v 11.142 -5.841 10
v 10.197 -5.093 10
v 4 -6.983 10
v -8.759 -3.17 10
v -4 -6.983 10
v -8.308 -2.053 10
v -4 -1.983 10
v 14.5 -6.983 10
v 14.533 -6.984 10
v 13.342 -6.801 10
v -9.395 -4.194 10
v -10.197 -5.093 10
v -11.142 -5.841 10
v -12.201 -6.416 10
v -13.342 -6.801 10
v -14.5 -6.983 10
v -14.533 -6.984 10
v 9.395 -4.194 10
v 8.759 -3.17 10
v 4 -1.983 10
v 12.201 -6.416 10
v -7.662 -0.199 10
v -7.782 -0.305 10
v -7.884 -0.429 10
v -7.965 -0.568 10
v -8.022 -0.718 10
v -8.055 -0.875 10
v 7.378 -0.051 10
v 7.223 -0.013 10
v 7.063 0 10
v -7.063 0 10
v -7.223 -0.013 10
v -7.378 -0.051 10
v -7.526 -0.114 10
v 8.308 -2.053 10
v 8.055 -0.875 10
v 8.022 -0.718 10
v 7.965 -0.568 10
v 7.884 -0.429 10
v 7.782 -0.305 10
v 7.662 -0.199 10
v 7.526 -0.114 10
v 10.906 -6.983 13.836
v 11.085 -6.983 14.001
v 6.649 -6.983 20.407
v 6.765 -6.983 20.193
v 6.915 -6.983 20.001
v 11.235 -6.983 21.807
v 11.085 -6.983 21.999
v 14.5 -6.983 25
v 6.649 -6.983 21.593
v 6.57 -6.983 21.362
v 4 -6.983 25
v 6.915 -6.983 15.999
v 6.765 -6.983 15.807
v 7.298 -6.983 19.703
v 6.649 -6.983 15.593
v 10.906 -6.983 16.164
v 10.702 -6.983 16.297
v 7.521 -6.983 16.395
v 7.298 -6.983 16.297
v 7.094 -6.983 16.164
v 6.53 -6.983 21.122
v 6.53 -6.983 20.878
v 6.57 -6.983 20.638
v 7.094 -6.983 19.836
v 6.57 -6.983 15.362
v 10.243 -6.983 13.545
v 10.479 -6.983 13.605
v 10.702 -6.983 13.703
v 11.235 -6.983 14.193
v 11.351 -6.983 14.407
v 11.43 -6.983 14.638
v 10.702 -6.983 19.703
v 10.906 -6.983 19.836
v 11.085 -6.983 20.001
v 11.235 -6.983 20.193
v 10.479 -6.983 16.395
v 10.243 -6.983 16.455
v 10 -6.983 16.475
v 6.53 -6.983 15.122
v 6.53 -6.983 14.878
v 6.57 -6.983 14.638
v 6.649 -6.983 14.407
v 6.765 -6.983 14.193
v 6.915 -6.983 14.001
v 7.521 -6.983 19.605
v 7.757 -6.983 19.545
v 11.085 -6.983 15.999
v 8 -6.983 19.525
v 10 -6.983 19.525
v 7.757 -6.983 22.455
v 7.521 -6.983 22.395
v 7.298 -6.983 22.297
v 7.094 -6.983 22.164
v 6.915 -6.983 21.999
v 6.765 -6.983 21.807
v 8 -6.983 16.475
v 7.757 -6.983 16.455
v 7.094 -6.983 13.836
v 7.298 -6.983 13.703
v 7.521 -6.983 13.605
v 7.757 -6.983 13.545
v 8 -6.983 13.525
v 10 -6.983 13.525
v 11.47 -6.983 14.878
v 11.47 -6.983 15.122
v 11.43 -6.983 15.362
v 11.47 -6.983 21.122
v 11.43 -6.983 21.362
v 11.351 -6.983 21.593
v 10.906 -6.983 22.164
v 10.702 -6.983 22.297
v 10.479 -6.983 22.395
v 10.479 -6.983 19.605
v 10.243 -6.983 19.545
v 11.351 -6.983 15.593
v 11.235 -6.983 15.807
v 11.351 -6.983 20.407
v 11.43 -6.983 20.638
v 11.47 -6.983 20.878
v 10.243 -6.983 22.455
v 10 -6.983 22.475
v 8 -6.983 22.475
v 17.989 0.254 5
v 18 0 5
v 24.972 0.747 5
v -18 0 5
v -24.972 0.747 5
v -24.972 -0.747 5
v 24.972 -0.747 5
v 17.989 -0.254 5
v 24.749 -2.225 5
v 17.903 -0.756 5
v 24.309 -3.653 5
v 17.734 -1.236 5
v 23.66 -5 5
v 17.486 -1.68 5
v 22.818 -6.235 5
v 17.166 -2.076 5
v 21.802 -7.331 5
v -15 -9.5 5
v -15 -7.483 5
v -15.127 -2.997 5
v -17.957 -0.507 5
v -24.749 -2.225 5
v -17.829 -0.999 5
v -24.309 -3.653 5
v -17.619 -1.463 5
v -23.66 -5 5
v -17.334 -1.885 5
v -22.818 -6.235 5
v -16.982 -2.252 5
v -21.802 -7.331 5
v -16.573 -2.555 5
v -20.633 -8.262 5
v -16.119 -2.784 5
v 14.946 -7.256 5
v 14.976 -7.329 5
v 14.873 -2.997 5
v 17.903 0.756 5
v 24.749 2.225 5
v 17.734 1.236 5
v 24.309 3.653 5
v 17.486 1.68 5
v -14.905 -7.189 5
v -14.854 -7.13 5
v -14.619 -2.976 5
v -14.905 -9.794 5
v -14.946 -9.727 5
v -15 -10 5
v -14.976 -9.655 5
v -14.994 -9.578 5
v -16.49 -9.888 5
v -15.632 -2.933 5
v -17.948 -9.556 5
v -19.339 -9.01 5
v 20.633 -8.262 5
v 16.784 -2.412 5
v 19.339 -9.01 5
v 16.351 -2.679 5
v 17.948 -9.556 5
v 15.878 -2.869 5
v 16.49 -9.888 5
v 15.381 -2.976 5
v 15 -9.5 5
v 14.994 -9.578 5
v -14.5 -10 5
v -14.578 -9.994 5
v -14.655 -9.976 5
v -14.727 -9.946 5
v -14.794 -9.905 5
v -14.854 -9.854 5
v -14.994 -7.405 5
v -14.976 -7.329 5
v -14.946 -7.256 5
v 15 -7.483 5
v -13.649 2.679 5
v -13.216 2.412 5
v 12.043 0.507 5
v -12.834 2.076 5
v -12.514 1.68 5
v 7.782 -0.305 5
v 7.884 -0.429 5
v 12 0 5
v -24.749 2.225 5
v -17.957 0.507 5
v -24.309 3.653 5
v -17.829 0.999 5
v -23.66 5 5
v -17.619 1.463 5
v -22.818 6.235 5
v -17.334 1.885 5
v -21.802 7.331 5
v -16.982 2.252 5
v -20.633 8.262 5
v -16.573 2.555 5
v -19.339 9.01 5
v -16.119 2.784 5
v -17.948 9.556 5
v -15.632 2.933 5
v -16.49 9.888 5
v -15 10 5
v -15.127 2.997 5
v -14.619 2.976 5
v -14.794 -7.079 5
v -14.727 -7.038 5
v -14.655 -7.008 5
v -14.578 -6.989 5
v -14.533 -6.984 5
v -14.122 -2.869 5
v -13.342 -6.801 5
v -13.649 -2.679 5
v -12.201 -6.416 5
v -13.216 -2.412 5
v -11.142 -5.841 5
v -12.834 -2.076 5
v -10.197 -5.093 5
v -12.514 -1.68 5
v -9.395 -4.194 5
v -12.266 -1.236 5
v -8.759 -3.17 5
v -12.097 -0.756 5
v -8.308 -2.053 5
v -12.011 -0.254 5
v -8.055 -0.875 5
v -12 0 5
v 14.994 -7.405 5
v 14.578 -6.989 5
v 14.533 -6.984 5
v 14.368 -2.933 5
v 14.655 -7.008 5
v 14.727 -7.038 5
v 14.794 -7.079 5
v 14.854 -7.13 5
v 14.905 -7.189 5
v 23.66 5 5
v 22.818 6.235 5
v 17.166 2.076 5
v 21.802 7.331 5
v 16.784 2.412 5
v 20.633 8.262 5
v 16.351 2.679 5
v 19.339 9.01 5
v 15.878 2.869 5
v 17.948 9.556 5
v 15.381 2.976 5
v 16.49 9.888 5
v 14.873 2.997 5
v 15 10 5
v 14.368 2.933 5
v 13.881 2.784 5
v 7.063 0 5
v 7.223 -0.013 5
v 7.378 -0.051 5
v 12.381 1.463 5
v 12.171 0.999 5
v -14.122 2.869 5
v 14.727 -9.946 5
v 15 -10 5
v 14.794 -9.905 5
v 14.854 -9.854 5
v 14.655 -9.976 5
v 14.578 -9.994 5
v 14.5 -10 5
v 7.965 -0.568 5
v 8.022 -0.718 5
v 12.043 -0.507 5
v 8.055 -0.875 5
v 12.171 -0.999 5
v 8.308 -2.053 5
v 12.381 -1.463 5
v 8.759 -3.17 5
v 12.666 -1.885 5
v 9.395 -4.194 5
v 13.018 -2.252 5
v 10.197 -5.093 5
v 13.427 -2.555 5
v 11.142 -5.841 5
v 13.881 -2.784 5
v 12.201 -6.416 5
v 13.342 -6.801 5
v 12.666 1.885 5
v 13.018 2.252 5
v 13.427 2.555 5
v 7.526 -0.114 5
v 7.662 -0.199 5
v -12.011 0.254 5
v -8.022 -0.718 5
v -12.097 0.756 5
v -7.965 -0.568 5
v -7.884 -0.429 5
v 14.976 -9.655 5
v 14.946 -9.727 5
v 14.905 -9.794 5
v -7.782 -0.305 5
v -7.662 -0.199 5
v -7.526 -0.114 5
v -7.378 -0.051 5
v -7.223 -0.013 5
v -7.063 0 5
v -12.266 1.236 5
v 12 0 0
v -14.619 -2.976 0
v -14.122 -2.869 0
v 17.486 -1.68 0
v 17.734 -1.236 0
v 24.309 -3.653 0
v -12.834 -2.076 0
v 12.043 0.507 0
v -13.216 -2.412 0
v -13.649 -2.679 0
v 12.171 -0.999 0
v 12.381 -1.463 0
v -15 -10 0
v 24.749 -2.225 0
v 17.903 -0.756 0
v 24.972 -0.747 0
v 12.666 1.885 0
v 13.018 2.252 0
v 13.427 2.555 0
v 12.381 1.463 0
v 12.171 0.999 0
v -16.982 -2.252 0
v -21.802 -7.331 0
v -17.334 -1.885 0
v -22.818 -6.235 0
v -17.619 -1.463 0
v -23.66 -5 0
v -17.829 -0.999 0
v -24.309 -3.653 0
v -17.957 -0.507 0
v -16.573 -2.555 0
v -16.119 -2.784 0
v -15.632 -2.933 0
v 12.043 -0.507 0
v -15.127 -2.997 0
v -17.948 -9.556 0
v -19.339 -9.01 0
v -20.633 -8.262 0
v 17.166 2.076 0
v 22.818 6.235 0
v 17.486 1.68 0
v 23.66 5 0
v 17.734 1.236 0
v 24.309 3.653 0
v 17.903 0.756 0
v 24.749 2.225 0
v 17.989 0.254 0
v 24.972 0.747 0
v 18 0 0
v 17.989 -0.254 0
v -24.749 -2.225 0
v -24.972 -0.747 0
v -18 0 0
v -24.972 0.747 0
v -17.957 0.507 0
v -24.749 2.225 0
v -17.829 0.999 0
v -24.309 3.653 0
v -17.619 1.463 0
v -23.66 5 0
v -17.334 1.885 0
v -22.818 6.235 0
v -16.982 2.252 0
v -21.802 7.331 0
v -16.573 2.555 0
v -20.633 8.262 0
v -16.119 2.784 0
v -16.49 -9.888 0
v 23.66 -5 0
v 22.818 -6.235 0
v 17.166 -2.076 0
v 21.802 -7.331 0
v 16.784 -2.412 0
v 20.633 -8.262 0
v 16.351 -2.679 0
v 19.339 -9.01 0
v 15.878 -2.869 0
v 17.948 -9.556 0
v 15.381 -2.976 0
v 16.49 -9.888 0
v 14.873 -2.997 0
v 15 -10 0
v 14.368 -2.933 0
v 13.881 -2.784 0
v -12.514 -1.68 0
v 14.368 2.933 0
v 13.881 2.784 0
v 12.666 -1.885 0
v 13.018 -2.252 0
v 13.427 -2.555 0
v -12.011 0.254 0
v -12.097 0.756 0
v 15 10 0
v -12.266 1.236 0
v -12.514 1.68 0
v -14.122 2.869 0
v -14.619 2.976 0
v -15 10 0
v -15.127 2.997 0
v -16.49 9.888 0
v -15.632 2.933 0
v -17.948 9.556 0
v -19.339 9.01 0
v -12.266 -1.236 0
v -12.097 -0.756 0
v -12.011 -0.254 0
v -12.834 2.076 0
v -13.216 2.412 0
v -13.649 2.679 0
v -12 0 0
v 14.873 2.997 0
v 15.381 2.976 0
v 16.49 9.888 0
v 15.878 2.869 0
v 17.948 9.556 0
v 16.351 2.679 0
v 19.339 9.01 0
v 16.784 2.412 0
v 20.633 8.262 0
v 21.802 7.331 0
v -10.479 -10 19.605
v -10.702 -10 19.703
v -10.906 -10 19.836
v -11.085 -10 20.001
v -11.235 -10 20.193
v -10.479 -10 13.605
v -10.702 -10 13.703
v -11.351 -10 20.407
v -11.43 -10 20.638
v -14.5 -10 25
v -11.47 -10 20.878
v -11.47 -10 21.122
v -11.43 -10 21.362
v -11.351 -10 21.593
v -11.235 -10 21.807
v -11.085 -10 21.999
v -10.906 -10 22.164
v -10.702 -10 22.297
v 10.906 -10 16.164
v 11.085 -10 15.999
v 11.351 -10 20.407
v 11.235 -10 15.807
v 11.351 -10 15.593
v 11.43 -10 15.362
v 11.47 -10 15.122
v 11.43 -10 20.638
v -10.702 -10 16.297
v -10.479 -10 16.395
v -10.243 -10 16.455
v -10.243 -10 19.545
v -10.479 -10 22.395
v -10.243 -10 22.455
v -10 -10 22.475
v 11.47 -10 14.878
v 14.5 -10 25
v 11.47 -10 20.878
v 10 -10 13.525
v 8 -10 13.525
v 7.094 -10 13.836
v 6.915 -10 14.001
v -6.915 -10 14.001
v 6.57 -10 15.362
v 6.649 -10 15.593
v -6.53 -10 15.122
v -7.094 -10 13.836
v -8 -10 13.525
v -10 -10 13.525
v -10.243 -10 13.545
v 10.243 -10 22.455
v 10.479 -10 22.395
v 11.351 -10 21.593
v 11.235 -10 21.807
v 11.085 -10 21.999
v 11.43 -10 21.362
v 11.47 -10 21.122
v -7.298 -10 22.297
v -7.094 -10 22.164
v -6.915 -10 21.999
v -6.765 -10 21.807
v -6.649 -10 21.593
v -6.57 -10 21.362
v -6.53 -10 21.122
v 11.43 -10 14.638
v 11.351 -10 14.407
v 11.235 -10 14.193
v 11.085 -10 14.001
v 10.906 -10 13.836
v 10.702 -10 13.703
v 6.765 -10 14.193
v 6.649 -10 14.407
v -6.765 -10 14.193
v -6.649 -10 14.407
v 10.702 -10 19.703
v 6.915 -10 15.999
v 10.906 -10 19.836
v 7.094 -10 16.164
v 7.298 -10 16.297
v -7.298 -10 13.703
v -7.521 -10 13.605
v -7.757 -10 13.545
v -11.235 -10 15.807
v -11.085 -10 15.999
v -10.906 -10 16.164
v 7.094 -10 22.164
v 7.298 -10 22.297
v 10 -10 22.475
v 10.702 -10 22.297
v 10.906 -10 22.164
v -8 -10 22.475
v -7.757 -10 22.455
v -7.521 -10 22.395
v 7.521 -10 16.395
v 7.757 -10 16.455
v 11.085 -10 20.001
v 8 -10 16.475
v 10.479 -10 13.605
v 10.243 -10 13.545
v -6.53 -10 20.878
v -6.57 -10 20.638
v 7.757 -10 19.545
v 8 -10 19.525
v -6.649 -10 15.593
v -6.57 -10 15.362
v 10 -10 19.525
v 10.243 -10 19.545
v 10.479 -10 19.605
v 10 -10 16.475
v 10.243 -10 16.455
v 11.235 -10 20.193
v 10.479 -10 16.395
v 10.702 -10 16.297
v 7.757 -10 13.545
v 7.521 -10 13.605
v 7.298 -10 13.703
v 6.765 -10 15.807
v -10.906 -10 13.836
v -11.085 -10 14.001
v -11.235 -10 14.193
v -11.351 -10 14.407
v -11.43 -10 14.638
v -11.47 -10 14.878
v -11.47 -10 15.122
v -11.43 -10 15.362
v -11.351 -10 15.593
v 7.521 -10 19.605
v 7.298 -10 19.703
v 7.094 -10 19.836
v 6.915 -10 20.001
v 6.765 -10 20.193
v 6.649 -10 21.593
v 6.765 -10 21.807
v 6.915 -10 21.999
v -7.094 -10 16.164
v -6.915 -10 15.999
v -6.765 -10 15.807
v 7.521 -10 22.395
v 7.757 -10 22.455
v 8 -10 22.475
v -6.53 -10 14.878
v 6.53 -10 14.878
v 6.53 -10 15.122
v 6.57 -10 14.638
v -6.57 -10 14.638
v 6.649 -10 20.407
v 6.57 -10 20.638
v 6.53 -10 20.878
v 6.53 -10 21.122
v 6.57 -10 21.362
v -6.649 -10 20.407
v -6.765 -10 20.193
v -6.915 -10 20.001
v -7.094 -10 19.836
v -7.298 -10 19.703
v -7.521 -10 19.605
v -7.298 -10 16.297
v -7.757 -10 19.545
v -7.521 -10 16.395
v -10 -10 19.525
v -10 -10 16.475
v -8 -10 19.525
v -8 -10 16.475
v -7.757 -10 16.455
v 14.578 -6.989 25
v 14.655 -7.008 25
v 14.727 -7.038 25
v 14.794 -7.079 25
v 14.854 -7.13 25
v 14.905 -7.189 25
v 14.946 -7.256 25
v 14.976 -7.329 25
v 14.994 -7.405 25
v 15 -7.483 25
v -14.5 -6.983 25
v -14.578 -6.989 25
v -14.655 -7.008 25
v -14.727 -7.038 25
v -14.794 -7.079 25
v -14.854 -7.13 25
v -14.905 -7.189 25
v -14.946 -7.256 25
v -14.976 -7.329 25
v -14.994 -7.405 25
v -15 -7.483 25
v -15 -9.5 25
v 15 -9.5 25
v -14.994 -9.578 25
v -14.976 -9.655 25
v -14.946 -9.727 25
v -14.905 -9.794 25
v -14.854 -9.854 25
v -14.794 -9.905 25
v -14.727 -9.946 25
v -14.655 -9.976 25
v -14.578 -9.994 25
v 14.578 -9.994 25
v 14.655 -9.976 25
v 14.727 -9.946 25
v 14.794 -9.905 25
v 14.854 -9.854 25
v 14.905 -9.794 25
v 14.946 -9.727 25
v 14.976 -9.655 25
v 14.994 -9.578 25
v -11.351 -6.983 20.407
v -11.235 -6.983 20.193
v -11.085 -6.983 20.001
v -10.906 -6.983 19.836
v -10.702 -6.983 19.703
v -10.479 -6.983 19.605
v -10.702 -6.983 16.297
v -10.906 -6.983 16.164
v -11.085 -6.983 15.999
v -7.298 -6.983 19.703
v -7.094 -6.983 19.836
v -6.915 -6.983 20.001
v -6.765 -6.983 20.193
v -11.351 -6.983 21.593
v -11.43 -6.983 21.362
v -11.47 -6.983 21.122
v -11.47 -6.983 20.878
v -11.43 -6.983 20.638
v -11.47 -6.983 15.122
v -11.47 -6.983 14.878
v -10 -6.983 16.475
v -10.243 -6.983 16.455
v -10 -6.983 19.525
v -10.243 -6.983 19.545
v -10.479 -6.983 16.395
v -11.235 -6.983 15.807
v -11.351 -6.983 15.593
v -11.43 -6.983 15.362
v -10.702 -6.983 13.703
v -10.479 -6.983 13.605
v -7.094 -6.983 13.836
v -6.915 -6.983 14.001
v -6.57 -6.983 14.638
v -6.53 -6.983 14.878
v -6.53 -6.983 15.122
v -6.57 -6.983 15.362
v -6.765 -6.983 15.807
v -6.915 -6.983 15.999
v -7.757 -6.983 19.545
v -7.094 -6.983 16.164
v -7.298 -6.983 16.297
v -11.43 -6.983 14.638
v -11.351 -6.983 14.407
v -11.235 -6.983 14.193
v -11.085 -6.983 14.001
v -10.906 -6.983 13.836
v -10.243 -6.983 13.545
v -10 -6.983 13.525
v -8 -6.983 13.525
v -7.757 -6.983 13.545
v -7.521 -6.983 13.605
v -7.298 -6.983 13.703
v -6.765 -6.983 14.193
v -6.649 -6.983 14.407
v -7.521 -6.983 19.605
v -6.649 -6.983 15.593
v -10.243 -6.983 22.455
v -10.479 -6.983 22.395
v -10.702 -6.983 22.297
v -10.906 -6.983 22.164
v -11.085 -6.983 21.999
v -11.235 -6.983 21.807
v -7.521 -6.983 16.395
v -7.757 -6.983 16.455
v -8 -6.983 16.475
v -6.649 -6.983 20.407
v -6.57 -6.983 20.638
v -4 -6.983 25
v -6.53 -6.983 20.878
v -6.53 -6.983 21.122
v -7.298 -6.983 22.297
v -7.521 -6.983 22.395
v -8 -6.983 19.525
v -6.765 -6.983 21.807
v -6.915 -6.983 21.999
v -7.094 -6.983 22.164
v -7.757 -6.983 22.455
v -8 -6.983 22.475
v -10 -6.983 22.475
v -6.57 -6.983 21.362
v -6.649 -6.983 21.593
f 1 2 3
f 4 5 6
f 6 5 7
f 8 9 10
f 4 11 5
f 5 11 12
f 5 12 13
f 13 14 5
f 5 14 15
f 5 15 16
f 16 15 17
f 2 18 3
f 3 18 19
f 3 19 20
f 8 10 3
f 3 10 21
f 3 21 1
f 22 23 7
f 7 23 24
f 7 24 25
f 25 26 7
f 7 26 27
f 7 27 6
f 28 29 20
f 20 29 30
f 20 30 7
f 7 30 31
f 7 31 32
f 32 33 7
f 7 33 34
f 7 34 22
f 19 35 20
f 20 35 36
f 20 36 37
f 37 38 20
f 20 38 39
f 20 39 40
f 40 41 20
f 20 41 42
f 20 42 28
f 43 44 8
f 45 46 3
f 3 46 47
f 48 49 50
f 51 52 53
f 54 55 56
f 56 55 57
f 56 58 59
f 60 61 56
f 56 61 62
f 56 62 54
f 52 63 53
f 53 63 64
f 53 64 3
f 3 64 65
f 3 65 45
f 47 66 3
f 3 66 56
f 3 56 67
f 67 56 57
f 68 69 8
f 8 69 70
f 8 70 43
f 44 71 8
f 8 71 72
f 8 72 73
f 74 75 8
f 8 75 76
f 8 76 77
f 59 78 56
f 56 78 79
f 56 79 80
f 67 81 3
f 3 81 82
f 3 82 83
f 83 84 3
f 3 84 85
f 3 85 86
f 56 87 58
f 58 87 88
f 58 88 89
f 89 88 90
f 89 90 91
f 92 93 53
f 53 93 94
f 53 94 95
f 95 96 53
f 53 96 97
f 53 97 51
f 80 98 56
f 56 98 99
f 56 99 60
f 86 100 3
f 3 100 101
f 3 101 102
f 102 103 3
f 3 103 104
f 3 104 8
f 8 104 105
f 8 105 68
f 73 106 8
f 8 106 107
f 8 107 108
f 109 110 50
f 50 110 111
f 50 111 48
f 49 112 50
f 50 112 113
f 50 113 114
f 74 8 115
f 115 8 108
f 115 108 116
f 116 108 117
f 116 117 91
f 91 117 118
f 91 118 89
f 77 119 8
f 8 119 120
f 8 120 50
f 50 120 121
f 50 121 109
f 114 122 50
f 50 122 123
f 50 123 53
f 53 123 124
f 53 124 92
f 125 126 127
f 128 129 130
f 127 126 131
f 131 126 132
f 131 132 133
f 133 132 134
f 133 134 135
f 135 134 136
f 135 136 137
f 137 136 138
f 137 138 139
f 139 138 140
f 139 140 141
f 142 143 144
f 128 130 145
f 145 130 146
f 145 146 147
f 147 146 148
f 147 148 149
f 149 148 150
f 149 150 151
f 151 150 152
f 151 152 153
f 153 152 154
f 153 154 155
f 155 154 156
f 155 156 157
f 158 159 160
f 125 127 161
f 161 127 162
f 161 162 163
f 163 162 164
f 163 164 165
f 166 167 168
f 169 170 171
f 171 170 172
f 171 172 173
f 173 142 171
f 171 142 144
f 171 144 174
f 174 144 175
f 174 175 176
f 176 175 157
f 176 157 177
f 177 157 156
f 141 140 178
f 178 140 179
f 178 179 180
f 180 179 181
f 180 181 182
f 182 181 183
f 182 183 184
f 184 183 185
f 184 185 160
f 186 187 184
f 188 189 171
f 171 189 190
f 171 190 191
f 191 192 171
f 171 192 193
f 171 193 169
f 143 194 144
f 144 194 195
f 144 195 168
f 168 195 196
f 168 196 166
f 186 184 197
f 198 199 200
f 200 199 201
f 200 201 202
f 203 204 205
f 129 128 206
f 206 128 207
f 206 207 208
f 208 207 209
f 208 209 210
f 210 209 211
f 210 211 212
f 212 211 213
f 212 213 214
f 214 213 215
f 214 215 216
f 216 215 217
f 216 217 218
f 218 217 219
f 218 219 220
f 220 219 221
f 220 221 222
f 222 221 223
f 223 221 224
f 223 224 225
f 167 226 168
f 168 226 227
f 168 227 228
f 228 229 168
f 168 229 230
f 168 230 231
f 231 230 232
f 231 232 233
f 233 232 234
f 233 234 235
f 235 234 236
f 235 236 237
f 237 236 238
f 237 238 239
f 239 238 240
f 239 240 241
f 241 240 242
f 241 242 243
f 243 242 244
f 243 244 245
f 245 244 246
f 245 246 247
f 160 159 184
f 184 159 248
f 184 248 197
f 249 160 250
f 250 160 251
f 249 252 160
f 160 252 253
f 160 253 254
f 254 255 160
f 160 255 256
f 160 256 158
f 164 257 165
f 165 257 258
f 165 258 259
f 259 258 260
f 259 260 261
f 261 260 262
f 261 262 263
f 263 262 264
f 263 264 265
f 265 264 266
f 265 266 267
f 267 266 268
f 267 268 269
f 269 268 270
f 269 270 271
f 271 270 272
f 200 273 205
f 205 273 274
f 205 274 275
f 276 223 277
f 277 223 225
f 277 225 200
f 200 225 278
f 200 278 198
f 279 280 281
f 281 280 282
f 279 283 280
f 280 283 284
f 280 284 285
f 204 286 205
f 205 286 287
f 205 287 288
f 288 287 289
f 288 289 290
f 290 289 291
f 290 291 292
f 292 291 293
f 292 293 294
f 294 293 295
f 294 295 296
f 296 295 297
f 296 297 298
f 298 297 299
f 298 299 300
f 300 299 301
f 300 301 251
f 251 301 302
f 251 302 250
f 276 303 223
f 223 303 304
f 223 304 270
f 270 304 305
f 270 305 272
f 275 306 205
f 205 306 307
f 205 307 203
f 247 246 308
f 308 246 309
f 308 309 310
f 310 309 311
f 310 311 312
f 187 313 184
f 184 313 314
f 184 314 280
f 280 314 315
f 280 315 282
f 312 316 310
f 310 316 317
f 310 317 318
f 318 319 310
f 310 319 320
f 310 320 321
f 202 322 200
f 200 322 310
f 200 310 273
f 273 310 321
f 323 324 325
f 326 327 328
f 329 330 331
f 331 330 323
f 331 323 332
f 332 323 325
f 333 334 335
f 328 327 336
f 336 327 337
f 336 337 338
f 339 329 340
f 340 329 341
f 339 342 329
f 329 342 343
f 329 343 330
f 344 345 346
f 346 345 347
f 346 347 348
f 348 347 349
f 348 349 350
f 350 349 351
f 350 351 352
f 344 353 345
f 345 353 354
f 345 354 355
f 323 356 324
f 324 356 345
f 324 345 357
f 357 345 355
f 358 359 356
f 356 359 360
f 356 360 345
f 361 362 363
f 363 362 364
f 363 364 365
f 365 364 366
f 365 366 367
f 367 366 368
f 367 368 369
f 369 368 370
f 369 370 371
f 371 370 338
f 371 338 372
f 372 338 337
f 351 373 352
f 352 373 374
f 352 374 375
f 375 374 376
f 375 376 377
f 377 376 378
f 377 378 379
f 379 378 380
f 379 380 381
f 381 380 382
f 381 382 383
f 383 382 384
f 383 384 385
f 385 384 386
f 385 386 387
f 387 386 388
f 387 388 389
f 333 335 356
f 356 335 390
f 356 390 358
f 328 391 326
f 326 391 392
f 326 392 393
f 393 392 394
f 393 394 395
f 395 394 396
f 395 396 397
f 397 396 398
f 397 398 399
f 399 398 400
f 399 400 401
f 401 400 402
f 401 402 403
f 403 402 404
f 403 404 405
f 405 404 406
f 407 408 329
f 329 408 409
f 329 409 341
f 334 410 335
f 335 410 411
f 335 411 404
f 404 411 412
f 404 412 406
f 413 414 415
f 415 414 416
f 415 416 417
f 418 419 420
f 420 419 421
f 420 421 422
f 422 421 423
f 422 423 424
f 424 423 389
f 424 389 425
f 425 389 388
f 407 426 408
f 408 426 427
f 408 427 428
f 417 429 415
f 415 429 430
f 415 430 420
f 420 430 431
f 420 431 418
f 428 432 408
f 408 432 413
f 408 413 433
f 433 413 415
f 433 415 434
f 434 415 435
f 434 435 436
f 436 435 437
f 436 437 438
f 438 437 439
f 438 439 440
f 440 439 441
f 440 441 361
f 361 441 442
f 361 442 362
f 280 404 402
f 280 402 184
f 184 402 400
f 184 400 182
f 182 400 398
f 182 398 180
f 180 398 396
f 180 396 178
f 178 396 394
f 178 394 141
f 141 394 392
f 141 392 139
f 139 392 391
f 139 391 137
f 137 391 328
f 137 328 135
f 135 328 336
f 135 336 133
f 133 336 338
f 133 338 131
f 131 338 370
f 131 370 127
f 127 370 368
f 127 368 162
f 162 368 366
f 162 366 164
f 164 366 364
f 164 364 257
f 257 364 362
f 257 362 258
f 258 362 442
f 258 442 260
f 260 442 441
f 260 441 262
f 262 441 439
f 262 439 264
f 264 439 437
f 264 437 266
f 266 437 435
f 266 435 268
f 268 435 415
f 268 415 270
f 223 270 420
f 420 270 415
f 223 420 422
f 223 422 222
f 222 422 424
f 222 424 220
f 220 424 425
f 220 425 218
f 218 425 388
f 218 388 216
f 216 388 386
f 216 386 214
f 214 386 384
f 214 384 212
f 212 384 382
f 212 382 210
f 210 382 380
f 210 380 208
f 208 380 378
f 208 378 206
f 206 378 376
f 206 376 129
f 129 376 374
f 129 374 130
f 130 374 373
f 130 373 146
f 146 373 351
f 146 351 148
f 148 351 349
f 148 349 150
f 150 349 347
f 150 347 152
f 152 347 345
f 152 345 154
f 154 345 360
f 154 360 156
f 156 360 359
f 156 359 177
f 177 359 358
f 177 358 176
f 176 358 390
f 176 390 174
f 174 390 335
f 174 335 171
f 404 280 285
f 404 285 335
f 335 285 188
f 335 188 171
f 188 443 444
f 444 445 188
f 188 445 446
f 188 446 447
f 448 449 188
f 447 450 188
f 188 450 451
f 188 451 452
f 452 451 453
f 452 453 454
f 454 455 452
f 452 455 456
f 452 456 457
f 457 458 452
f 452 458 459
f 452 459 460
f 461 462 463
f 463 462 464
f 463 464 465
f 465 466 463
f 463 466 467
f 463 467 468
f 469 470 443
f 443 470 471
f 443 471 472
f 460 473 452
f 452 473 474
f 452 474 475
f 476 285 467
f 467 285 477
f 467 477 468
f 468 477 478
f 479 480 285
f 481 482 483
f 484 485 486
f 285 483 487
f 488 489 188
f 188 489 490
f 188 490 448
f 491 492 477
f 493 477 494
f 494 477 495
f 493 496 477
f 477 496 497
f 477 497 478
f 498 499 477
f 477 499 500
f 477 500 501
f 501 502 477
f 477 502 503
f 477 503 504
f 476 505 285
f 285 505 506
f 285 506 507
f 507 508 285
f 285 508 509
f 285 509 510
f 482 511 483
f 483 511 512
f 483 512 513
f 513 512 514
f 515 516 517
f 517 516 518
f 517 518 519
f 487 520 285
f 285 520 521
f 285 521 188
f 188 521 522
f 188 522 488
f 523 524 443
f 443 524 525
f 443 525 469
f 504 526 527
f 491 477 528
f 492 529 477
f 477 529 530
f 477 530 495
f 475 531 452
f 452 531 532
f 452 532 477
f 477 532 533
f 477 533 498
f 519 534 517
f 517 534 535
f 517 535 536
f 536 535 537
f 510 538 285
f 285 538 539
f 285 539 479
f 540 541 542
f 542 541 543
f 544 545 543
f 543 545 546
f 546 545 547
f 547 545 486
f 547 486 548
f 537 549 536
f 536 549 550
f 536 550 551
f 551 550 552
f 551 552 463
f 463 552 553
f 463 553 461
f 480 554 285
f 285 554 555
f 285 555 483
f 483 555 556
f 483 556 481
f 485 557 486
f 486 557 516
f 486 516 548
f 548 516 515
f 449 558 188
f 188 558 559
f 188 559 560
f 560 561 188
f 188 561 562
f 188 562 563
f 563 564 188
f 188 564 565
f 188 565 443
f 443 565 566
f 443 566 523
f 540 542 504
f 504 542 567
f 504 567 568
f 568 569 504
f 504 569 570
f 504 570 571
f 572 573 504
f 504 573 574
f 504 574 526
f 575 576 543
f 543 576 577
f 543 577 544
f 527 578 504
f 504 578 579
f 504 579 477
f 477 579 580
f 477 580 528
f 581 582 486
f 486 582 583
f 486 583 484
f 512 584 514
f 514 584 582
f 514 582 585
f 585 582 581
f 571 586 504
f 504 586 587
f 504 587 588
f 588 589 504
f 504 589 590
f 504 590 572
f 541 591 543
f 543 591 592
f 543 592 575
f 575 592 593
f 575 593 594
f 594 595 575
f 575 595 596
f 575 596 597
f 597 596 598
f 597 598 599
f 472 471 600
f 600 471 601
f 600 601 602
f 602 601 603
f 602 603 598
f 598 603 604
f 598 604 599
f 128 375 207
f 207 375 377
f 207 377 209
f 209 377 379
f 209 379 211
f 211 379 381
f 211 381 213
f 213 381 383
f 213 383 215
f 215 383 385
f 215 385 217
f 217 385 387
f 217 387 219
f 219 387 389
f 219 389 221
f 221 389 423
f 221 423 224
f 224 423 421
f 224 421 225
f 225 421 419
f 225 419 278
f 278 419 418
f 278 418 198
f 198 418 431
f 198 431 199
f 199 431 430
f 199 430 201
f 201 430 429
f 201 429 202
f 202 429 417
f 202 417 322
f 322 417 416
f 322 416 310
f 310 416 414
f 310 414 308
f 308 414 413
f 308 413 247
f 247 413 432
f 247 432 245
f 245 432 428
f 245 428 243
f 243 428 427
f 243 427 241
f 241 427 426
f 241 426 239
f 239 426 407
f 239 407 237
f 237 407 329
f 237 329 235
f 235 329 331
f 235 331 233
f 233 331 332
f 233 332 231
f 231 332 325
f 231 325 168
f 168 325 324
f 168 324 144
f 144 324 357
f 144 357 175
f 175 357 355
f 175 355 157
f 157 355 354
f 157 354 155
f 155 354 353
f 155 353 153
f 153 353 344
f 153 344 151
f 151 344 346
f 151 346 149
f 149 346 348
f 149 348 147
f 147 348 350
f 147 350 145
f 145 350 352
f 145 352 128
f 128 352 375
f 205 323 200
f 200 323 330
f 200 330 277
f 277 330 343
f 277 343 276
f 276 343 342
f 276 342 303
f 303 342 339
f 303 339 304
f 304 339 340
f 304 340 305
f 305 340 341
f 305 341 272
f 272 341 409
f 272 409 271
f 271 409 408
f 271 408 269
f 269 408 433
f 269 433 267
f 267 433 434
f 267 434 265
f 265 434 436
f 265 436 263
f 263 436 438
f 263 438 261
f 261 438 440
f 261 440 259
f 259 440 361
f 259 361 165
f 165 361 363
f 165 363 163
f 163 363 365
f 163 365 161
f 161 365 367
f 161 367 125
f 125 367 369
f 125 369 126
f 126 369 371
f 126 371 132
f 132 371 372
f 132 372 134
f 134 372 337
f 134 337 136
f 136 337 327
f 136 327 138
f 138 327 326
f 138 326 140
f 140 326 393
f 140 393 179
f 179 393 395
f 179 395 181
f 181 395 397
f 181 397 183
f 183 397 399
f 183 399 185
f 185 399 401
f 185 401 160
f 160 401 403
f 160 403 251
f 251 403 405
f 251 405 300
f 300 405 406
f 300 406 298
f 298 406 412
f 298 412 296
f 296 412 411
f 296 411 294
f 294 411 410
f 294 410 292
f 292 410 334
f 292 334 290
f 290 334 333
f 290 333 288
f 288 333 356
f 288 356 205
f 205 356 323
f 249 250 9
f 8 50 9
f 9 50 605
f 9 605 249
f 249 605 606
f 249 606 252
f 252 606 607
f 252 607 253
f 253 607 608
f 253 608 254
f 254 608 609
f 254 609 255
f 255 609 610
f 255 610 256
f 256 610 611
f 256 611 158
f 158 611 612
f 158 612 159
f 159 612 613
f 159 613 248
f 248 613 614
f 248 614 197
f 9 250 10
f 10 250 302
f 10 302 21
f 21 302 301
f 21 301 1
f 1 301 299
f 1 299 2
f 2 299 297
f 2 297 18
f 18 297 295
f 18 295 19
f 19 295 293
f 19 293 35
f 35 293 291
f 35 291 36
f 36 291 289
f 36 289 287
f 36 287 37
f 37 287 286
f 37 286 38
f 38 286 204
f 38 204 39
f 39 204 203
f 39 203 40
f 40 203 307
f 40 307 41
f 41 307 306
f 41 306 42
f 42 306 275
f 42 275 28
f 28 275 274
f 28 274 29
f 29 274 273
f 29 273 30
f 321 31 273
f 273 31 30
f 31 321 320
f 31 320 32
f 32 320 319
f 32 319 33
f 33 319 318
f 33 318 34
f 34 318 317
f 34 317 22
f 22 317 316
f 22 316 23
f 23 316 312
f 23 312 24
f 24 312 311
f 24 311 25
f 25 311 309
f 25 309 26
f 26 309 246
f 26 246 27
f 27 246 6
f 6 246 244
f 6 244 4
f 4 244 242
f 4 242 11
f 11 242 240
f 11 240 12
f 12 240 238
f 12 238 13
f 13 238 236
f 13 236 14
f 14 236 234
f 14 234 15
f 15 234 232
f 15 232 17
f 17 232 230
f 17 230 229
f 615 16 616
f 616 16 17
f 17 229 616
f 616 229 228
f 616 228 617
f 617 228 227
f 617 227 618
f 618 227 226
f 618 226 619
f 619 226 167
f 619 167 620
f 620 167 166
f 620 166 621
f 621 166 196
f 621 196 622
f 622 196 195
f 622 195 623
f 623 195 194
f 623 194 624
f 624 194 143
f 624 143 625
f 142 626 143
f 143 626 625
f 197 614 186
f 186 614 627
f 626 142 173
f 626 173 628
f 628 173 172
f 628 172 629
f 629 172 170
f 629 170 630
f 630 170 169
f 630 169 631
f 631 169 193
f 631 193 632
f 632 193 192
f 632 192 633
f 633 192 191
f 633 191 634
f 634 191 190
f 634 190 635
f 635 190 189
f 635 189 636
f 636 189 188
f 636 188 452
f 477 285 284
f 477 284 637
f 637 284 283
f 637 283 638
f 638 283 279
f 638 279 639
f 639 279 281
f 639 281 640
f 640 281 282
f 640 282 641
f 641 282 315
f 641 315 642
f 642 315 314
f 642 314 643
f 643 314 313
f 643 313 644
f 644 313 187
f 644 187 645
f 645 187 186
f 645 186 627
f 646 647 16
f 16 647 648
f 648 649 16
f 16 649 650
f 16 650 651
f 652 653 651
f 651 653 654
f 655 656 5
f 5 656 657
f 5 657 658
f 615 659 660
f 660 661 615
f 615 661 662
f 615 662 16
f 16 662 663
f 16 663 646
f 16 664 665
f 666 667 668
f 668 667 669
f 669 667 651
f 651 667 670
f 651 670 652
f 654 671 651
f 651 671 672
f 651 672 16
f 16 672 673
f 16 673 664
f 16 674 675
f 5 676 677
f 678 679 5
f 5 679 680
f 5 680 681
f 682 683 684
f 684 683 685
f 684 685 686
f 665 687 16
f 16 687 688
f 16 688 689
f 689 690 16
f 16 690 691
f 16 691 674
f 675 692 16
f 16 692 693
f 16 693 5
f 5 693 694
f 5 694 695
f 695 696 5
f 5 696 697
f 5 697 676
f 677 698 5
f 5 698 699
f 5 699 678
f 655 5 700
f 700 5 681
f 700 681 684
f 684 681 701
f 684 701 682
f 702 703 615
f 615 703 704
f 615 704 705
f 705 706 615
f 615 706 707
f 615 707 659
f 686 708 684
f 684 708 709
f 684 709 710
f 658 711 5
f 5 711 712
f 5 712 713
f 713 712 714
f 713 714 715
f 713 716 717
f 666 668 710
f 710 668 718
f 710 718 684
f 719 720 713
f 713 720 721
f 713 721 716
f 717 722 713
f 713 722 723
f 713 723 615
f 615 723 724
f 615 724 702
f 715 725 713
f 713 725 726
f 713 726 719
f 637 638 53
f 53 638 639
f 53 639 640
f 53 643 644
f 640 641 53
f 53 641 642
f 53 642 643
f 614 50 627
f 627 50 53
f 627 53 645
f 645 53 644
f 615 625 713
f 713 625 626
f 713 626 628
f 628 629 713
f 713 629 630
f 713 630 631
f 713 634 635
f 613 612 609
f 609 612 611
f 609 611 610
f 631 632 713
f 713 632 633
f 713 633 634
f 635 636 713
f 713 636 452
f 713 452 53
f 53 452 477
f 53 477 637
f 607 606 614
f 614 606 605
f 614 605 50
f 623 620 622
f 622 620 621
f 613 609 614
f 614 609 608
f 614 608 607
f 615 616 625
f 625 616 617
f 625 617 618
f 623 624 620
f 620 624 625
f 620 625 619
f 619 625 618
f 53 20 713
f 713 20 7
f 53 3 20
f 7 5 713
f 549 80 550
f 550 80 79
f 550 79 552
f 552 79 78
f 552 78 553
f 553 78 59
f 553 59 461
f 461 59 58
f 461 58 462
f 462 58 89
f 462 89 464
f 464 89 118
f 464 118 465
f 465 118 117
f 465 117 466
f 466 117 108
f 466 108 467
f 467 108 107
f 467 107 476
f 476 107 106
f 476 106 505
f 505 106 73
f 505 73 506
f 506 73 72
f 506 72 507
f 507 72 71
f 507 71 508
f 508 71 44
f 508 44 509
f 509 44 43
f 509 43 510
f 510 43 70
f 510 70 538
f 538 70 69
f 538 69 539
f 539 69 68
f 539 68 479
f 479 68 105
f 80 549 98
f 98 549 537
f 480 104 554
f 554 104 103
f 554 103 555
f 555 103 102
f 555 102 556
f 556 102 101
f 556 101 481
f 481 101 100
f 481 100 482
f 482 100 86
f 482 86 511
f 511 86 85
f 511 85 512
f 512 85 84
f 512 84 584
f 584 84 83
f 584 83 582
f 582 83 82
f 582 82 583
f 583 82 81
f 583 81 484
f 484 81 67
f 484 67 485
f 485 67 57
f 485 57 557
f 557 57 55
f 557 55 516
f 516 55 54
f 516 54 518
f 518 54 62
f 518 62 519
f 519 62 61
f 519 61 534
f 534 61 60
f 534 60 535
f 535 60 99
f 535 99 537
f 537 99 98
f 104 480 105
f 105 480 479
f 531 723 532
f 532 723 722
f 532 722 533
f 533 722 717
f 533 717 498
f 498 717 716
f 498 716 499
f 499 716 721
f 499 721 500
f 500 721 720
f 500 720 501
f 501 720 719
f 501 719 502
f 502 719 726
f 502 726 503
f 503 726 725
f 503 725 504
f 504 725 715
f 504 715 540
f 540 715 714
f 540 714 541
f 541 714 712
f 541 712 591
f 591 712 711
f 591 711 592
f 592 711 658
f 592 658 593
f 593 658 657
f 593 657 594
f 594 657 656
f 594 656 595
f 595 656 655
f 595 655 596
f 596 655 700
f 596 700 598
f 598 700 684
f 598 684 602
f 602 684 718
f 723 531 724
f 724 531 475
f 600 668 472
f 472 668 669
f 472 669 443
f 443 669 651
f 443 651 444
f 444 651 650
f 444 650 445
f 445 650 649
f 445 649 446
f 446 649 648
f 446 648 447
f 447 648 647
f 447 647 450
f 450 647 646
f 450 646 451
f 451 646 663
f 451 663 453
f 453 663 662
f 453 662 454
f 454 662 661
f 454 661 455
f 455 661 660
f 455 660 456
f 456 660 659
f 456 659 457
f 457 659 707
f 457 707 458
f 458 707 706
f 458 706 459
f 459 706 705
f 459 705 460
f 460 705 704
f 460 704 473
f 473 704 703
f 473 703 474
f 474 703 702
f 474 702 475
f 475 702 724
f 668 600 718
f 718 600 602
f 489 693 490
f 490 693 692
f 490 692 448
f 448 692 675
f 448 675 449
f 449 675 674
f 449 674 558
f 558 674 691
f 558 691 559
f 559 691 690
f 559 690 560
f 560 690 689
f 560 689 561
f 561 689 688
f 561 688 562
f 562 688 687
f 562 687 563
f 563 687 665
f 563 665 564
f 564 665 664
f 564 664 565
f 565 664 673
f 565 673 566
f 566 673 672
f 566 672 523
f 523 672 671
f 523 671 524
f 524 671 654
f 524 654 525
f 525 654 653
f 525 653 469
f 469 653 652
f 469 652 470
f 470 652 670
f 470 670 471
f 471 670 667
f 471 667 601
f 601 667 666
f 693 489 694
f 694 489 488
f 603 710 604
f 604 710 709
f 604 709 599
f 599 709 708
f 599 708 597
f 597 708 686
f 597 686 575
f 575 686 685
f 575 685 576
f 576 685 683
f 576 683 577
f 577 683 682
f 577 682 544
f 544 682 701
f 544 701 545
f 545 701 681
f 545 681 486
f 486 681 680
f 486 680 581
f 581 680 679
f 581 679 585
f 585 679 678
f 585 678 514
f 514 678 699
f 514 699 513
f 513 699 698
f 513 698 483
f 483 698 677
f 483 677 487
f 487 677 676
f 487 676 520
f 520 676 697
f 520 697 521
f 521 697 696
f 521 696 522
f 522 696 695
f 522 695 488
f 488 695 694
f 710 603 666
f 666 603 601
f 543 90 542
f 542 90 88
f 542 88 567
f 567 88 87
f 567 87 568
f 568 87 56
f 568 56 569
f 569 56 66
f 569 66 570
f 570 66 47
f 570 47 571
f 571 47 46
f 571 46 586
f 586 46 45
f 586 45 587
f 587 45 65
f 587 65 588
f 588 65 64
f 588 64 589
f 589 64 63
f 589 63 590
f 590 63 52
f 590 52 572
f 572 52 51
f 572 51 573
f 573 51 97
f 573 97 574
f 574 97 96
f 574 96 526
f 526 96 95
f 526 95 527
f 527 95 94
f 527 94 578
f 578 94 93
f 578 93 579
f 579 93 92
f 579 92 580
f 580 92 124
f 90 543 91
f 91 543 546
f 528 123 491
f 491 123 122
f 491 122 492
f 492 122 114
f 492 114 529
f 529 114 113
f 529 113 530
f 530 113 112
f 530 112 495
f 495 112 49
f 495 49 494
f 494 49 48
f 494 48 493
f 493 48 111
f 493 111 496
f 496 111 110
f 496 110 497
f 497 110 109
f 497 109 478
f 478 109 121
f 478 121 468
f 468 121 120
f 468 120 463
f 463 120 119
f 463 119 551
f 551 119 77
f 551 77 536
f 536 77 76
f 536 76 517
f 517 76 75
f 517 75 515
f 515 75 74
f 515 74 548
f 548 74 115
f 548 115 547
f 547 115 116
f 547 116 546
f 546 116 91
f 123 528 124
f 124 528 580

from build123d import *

# Parameters (mm, degrees)
SKETCH_1_R          = 3
EXTRUDE_1_DEPTH     = 5
EXTRUDE_3_DEPTH     = 10
EXTRUDE_4_DEPTH     = 15
EXTRUDE_5_DEPTH     = 4
CUT_EXTRUDE_1_DEPTH = 3.5


with BuildPart() as part:
    # 草图1 → 凸台-拉伸1 (new body)
    with BuildSketch(Plane.XY):
        with BuildLine():
            Line((-15, 10), (15, 10))
            ThreePointArc((15, 10), (25, 0), (15, -10))
            Line((15, -10), (-15, -10))
            ThreePointArc((-15, -10), (-25, 0), (-15, 10))
        make_face()
        with Locations((-15, 0)):
            Circle(SKETCH_1_R, mode=Mode.SUBTRACT)
        with Locations((15, 0)):
            Circle(SKETCH_1_R, mode=Mode.SUBTRACT)
    extrude(amount=EXTRUDE_1_DEPTH)

    # 草图4 → 凸台-拉伸3 (add)
    with BuildSketch(Plane.XY):
        with BuildLine():
            Line((7.062746067, 0), (-7.062746067, 0))
            ThreePointArc((-7.062746067, 0), (-7.724183895, -0.25), (-8.054902808, -0.875))
            ThreePointArc((-8.054902808, -0.875), (-10.197413633, -5.092657871), (-14.533333333, -6.984427122))
            ThreePointArc((-14.533333333, -6.984427122), (-14.865148372, -7.141749748), (-15, -7.483314774))
            Line((-15, -7.483314774), (-15, -9.5))
            ThreePointArc((-15, -9.5), (-14.853553391, -9.853553391), (-14.5, -10))
            Line((-14.5, -10), (14.5, -10))
            ThreePointArc((14.5, -10), (14.853553391, -9.853553391), (15, -9.5))
            Line((15, -9.5), (15, -7.483314774))
            ThreePointArc((15, -7.483314774), (14.865148372, -7.141749748), (14.533333333, -6.984427122))
            ThreePointArc((14.533333333, -6.984427122), (10.197413633, -5.092657871), (8.054902808, -0.875))
            ThreePointArc((8.054902808, -0.875), (7.724183895, -0.25), (7.062746067, 0))
        make_face()
    extrude(amount=EXTRUDE_3_DEPTH)

    # 草图5 → 凸台-拉伸4 (add)
    with BuildSketch(Plane.XY.offset(10)):
        with BuildLine():
            Line((-15, -7.483314774), (-15, -9.5))
            ThreePointArc((-15, -9.5), (-14.853553391, -9.853553391), (-14.5, -10))
            Line((-14.5, -10), (14.5, -10))
            ThreePointArc((14.5, -10), (14.853553391, -9.853553391), (15, -9.5))
            Line((15, -9.5), (15, -7.483314774))
            ThreePointArc((15, -7.483314774), (14.853553391, -7.129761383), (14.5, -6.983314774))
            Line((14.5, -6.983314774), (-14.5, -6.983314774))
            ThreePointArc((-14.5, -6.983314774), (-14.853553391, -7.129761383), (-15, -7.483314774))
        make_face()
    extrude(amount=EXTRUDE_4_DEPTH)

    # 草图9 → 凸台-拉伸5 (add, symmetric)
    with BuildSketch(Plane(origin=(0, 0, 0), x_dir=(0, 0, -1), z_dir=(1, 0, 0))):
        Polygon((-25, -6.983314774), (-10, -6.983314774), (-10, -1.983314774), align=None)
    extrude(amount=EXTRUDE_5_DEPTH, both=True)

    # 草图10 → 切除-拉伸1 (cut)
    with BuildSketch(Plane(origin=(0, -6.983314774, 0), x_dir=(1, 0, 0), z_dir=(0, 1, 0))):
        with BuildLine():
            Line((10, -13.525), (8, -13.525))
            ThreePointArc((8, -13.525), (6.525, -15), (8, -16.475))
            Line((8, -16.475), (10, -16.475))
            ThreePointArc((10, -16.475), (11.475, -15), (10, -13.525))
        make_face()
        with BuildLine():
            Line((8, -19.525), (10, -19.525))
            ThreePointArc((10, -19.525), (11.475, -21), (10, -22.475))
            Line((10, -22.475), (8, -22.475))
            ThreePointArc((8, -22.475), (6.525, -21), (8, -19.525))
        make_face()
        with BuildLine():
            Line((-10, -13.525), (-8, -13.525))
            ThreePointArc((-8, -13.525), (-6.525, -15), (-8, -16.475))
            Line((-8, -16.475), (-10, -16.475))
            ThreePointArc((-10, -16.475), (-11.475, -15), (-10, -13.525))
        make_face()
        with BuildLine():
            Line((-8, -19.525), (-10, -19.525))
            ThreePointArc((-10, -19.525), (-11.475, -21), (-10, -22.475))
            Line((-10, -22.475), (-8, -22.475))
            ThreePointArc((-8, -22.475), (-6.525, -21), (-8, -19.525))
        make_face()
    extrude(amount=-CUT_EXTRUDE_1_DEPTH, mode=Mode.SUBTRACT)


solid = part.part
